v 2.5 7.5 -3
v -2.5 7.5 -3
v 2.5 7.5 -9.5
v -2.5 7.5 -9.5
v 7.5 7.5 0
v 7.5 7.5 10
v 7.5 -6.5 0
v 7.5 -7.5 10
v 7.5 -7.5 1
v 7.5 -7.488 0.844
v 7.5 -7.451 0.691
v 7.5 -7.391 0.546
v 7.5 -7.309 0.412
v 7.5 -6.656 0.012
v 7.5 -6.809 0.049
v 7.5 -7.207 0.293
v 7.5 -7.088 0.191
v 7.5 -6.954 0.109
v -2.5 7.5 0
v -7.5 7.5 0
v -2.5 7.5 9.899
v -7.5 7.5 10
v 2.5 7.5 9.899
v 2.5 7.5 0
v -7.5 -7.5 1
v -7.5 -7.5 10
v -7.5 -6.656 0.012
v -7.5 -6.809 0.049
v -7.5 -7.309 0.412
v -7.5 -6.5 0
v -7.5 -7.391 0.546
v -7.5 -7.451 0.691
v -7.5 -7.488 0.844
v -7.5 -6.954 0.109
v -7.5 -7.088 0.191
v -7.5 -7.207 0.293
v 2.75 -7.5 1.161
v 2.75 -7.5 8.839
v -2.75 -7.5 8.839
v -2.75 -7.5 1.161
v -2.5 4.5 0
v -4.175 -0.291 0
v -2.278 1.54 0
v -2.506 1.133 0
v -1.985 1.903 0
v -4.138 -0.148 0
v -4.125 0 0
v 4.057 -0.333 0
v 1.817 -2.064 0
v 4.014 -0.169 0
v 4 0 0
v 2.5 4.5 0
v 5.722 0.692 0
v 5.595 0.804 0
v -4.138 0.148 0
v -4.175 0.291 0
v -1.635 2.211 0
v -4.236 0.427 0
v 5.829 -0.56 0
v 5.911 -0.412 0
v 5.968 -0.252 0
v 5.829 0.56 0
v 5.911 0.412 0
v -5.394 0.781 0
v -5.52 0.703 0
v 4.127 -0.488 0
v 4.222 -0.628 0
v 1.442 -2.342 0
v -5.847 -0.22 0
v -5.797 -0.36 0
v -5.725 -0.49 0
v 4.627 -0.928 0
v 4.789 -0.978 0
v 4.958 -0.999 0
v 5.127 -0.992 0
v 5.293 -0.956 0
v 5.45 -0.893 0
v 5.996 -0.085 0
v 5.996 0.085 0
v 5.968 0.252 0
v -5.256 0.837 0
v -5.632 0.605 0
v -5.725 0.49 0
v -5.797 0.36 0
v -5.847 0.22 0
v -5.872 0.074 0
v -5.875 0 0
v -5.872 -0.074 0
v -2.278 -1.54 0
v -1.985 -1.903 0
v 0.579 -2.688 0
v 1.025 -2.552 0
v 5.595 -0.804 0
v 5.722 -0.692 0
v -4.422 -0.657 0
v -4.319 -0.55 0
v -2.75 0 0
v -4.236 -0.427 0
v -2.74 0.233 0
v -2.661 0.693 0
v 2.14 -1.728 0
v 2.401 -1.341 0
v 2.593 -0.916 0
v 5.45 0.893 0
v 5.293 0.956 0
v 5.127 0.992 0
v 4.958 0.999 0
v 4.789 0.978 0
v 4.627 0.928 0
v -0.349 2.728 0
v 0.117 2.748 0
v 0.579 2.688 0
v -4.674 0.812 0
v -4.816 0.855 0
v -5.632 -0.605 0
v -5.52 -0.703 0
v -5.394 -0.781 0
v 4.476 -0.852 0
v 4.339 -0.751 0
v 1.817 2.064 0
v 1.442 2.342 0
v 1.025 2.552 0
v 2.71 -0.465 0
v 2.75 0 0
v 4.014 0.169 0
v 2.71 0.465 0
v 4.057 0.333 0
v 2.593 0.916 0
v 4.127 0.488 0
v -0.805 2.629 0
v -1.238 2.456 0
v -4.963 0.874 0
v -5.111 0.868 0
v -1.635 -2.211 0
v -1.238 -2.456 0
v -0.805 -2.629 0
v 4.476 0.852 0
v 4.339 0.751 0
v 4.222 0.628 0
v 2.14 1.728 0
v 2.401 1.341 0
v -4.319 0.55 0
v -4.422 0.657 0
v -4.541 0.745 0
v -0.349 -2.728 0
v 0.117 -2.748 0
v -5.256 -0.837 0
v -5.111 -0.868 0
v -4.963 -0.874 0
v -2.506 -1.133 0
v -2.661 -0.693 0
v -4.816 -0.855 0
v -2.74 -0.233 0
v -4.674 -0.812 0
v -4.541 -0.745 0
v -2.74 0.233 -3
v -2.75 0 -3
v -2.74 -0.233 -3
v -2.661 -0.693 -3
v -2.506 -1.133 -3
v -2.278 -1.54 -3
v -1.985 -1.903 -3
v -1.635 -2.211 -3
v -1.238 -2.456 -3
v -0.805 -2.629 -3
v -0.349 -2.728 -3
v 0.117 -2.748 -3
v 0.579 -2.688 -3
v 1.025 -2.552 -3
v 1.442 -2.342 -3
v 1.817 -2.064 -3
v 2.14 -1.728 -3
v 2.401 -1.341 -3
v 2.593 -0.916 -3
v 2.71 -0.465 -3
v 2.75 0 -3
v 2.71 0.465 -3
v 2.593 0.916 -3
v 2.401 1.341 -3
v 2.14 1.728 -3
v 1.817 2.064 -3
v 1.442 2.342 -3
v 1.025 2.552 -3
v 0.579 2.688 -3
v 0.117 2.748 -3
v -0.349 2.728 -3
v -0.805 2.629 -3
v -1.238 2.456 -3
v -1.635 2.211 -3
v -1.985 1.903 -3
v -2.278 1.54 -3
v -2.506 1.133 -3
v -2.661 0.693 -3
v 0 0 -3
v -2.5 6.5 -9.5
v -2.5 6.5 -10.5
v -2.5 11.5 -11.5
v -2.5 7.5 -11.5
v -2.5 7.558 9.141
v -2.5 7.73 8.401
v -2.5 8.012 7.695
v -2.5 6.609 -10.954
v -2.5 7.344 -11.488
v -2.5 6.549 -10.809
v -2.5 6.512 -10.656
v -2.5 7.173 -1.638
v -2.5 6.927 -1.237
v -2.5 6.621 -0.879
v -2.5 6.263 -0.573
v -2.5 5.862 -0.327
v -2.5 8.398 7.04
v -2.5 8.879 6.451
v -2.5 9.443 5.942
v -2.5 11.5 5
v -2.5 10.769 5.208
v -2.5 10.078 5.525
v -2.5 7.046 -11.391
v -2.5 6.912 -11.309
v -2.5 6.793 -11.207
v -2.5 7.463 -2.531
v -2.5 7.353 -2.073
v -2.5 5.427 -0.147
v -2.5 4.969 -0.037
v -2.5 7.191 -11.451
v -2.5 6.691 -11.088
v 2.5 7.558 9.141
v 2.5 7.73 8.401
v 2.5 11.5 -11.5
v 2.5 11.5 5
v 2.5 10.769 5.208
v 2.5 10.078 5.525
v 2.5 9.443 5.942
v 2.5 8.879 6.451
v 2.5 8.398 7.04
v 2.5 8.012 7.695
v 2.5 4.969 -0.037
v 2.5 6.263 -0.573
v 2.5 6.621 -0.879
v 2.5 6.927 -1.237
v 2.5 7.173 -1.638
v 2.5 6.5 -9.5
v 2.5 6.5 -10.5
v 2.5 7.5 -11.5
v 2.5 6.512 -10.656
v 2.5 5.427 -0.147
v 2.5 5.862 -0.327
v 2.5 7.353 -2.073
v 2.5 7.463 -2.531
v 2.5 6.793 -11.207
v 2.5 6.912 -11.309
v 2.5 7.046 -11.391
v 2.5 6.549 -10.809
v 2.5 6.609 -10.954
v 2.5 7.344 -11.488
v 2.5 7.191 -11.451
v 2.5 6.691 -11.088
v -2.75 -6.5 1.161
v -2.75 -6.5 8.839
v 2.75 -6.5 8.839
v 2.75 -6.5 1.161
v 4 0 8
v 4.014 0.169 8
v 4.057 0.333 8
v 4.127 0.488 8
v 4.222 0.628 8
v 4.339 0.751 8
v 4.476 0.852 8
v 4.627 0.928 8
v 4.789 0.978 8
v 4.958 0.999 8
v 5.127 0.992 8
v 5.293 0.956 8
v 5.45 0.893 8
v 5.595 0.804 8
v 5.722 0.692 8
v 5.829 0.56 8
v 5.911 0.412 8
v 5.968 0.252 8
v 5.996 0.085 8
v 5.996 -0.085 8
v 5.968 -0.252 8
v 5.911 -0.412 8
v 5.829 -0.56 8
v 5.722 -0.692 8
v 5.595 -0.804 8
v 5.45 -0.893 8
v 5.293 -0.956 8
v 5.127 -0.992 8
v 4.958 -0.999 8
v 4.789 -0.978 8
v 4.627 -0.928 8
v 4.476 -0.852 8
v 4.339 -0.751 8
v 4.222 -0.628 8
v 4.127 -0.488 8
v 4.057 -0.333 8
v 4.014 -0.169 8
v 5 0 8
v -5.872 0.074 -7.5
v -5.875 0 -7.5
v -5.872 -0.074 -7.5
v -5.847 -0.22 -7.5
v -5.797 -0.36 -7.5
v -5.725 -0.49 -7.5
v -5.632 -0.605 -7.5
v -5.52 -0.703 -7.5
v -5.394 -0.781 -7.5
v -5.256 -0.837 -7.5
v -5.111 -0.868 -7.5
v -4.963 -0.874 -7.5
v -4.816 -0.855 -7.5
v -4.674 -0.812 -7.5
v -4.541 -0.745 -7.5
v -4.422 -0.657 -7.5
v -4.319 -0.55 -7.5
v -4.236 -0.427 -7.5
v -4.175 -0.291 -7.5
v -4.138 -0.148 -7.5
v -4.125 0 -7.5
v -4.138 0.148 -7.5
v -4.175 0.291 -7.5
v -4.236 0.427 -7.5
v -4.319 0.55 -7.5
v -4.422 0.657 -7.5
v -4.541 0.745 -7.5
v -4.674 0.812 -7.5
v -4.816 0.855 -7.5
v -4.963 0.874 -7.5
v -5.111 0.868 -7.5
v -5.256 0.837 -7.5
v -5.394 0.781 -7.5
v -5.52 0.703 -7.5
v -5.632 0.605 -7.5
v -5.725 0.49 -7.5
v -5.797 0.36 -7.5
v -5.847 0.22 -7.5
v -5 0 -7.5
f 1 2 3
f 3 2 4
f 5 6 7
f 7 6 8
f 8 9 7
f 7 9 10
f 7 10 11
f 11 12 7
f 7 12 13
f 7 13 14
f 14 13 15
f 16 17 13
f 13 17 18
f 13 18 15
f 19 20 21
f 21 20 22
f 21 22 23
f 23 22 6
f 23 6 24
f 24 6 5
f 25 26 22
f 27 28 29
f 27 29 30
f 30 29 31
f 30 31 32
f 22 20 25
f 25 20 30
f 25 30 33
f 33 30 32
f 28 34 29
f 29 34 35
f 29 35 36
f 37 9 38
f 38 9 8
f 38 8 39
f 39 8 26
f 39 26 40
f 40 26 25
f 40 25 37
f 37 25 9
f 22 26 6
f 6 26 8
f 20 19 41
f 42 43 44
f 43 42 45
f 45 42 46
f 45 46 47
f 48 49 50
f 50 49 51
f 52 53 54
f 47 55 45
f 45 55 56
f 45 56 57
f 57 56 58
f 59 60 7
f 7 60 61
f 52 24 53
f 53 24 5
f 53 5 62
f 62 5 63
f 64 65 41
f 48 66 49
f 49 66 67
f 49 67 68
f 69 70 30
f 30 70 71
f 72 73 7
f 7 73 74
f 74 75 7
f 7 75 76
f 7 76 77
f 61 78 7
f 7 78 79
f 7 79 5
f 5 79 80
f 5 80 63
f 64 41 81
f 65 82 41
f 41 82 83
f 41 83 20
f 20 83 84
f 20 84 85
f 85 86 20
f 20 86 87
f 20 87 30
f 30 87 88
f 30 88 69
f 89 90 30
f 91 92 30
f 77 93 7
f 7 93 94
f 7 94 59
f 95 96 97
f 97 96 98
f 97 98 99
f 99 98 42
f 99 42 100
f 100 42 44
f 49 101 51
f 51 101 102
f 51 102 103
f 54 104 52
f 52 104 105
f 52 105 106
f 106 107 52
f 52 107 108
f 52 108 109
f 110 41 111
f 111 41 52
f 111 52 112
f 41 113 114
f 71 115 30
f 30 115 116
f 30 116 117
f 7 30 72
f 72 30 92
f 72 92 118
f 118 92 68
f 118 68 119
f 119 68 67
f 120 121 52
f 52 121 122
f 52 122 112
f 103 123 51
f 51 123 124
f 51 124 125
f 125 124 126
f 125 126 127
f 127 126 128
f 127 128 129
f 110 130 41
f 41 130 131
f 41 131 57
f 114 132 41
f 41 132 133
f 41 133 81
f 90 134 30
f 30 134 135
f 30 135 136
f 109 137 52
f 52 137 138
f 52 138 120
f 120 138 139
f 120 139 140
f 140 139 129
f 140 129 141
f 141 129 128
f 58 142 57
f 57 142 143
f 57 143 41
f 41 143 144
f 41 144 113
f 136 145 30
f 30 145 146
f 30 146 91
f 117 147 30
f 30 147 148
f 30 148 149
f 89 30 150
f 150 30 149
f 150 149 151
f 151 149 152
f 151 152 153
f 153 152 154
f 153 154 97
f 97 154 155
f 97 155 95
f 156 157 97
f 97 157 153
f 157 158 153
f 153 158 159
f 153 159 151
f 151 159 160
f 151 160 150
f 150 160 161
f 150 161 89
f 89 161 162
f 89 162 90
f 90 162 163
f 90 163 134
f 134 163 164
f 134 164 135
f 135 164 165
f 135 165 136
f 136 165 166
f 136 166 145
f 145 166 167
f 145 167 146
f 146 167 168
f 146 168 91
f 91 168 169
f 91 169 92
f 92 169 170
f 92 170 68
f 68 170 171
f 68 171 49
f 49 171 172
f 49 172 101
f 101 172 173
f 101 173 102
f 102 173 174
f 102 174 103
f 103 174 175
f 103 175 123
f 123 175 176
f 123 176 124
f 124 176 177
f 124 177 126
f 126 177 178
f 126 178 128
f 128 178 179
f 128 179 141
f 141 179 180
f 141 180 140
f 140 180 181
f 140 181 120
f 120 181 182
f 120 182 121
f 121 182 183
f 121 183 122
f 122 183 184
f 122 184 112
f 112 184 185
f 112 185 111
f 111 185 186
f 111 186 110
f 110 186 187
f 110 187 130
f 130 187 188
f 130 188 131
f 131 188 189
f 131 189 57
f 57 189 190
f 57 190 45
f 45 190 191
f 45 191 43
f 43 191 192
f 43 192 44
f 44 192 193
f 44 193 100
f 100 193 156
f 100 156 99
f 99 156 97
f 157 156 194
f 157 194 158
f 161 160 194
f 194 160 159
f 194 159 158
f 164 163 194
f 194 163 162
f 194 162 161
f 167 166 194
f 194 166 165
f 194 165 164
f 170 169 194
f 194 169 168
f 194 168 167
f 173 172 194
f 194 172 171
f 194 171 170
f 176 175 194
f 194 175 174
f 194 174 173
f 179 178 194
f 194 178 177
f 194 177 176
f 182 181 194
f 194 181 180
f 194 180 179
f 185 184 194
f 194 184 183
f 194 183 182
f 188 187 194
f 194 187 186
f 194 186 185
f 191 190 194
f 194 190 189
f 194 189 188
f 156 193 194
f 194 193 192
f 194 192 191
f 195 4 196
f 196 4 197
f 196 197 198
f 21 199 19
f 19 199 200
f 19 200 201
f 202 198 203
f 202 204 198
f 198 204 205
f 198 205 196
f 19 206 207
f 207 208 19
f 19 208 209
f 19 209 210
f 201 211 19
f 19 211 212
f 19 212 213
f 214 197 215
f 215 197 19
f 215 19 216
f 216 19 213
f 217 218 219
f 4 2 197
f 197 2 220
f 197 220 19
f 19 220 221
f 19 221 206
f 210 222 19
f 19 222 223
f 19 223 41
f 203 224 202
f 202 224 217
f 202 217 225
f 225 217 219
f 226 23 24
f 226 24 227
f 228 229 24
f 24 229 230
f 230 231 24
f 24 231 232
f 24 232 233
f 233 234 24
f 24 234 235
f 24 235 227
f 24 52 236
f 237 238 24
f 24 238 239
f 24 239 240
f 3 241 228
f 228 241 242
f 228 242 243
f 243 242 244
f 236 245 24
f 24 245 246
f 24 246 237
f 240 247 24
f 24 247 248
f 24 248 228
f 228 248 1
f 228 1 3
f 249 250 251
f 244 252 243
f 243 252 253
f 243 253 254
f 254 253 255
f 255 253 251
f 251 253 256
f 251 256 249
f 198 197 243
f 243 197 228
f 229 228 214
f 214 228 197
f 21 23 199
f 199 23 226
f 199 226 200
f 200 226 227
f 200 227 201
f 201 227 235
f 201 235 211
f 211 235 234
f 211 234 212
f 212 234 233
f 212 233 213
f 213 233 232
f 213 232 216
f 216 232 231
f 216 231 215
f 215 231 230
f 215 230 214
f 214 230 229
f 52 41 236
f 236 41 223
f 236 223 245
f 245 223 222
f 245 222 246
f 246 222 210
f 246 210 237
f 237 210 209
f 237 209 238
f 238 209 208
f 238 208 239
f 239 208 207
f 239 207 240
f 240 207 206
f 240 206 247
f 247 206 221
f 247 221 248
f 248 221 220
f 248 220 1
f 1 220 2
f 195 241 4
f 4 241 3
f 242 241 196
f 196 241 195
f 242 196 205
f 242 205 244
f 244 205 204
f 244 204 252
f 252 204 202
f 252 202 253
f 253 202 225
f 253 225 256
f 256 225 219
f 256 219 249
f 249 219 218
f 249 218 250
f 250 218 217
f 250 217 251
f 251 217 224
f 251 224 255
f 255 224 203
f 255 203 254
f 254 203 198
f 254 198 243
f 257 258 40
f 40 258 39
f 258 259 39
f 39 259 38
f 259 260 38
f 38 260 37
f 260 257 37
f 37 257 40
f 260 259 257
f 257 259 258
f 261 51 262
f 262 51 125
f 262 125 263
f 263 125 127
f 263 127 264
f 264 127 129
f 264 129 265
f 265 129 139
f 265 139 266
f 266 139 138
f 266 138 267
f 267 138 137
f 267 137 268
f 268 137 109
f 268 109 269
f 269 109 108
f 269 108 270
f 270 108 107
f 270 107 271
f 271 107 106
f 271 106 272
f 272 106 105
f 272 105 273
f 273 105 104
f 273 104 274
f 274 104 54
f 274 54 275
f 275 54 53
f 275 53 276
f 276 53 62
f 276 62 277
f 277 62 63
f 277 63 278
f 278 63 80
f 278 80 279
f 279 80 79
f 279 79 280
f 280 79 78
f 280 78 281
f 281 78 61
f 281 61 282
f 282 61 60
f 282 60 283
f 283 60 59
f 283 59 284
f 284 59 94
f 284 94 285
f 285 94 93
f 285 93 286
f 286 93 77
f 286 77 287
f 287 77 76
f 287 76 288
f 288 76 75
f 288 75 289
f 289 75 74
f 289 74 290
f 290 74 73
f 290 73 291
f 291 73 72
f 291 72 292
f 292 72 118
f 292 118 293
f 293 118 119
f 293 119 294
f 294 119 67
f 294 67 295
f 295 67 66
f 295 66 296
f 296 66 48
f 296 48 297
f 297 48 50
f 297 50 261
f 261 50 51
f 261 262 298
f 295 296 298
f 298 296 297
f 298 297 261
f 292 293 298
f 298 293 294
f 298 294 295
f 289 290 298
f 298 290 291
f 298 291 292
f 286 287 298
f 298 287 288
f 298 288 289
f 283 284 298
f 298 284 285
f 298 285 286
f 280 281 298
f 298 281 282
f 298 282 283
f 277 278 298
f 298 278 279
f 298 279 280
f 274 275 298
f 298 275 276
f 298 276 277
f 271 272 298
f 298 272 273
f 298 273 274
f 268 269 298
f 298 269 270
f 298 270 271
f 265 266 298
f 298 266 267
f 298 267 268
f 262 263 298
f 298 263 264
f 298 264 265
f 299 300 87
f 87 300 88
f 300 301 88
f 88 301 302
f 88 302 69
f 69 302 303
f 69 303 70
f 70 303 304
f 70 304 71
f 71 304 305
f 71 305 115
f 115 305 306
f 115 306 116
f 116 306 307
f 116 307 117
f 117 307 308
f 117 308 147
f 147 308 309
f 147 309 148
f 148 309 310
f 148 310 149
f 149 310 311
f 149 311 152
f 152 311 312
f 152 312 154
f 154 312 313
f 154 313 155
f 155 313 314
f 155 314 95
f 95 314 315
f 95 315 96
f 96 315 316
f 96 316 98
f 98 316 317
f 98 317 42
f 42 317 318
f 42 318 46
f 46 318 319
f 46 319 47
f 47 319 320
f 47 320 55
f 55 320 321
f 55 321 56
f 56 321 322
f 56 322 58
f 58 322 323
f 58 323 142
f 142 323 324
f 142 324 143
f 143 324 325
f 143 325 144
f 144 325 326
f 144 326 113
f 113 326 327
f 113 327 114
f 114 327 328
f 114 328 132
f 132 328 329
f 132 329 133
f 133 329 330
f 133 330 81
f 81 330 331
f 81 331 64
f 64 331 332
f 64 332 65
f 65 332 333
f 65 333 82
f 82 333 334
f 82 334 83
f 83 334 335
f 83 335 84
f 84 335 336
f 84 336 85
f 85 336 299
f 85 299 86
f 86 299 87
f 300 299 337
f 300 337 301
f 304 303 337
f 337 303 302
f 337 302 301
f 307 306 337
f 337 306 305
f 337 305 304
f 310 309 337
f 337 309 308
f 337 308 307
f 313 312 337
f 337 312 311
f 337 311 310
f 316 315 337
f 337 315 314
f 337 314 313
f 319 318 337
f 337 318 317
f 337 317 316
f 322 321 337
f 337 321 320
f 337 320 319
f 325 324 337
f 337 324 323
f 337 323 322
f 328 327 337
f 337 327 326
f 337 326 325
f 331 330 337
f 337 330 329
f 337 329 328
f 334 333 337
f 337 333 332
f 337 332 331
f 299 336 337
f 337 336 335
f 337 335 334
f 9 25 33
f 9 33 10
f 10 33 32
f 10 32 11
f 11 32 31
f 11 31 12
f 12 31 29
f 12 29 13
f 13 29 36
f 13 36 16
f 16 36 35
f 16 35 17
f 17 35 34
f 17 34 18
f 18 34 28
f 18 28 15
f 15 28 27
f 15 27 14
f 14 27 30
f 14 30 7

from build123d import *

# Parameters (mm, degrees)
SKETCH1_W           = 15
SKETCH1_H           = 15
BOSS_EXTRUDE1_DEPTH = 10
SKETCH2_R           = 2.75
BOSS_EXTRUDE2_DEPTH = 3
SKETCH3_W           = 2.5
SKETCH3_H           = 5
BOSS_EXTRUDE3_DEPTH = 4
FILLET1_R           = 5
FILLET2_R           = 3
SKETCH4_W           = 5
SKETCH4_H           = 2
BOSS_EXTRUDE4_DEPTH = 1
FILLET3_R           = 1
SKETCH5_W           = 2.75
SKETCH5_H           = 7.677004104
CUT_EXTRUDE1_DEPTH  = 1
SKETCH6_R           = 1
CUT_EXTRUDE2_DEPTH  = 8
SKETCH7_R           = 0.875
BOSS_EXTRUDE5_DEPTH = 7.5
FILLET5_R           = 1


with BuildPart() as part:
    # Sketch1 → Boss-Extrude1 (new body)
    with BuildSketch(Plane.XY):
        Rectangle(SKETCH1_W, SKETCH1_H)
    extrude(amount=BOSS_EXTRUDE1_DEPTH)

    # Sketch2 → Boss-Extrude2 (add)
    with BuildSketch(Plane(origin=(0, 0, 0), x_dir=(-1, 0, 0), z_dir=(0, 0, -1))):
        Circle(SKETCH2_R)
    extrude(amount=BOSS_EXTRUDE2_DEPTH)

    # Sketch3 → Boss-Extrude3 (add)
    with BuildSketch(Plane(origin=(0, 7.5, 0), x_dir=(1, 0, 0), z_dir=(0, 1, 0))):
        Polygon((-2.5, 0), (0, 0), (2.5, 0), (2.5, 11.5), (-2.5, 11.5), align=None)
        with Locations((1.25, -2.5)):
            Rectangle(SKETCH3_W, SKETCH3_H)
        with Locations((-1.25, -2.5)):
            Rectangle(SKETCH3_W, SKETCH3_H)
    extrude(amount=BOSS_EXTRUDE3_DEPTH)

    # Fillet1
    # the kernel refuses this fillet: 5 mm, written as the material it adds along each edge
    with BuildSketch(Plane(origin=(2.5, 7.5, 5), x_dir=(0, 0, 1), z_dir=(-1, 0, 0))) as fillet1_piece_1:
        with BuildLine():
            CenterArc((4.898979486, 5), FILLET1_R, 191.536959033, 78.463040967)
            Line((0, 4), (-0.09797959, 3.98))
            ThreePointArc((-0.09797959, 3.98), (-0.1, 2), (-0.1, 0))
            Line((-0.1, 0), (0, -0.1))
            Line((0, -0.1), (4.898979486, -0.1))
            Line((4.898979486, -0.1), (4.898979486, 0))
        make_face()
    extrude(amount=5)

    # Fillet2
    fillet2_edges = [part.edges().sort_by_distance(p)[0] for p in [
        (0, 7.5, 0),
    ]]
    fillet(fillet2_edges, radius=FILLET2_R)

    # Sketch4 → Boss-Extrude4 (add)
    with BuildSketch(Plane.XZ.offset(-7.5)):
        with Locations((0, -10.5)):
            Rectangle(SKETCH4_W, SKETCH4_H)
    extrude(amount=BOSS_EXTRUDE4_DEPTH)

    # Fillet3
    fillet3_edges = [part.edges().sort_by_distance(p)[0] for p in [
        (0, 6.5, -11.5),
    ]]
    fillet(fillet3_edges, radius=FILLET3_R)

    # Sketch5 → Cut-Extrude1 (cut)
    with BuildSketch(Plane.XZ.offset(7.5)):
        with Locations((-1.375, 5)):
            Rectangle(SKETCH5_W, SKETCH5_H)
        with Locations((1.375, 5)):
            Rectangle(SKETCH5_W, SKETCH5_H)
    extrude(amount=-CUT_EXTRUDE1_DEPTH, mode=Mode.SUBTRACT)

    # Sketch6 → Cut-Extrude2 (cut)
    with BuildSketch(Plane(origin=(0, 0, 0), x_dir=(-1, 0, 0), z_dir=(0, 0, -1))):
        with Locations((-5, 0)):
            Circle(SKETCH6_R)
    extrude(amount=-CUT_EXTRUDE2_DEPTH, mode=Mode.SUBTRACT)

    # Sketch7 → Boss-Extrude5 (add)
    with BuildSketch(Plane(origin=(0, 0, 0), x_dir=(-1, 0, 0), z_dir=(0, 0, -1))):
        with Locations((5, 0)):
            Circle(SKETCH7_R)
    extrude(amount=BOSS_EXTRUDE5_DEPTH)

    # Fillet5
    fillet5_edges = [part.edges().sort_by_distance(p)[0] for p in [
        (0, -7.5, 0),
    ]]
    fillet(fillet5_edges, radius=FILLET5_R)


solid = part.part
